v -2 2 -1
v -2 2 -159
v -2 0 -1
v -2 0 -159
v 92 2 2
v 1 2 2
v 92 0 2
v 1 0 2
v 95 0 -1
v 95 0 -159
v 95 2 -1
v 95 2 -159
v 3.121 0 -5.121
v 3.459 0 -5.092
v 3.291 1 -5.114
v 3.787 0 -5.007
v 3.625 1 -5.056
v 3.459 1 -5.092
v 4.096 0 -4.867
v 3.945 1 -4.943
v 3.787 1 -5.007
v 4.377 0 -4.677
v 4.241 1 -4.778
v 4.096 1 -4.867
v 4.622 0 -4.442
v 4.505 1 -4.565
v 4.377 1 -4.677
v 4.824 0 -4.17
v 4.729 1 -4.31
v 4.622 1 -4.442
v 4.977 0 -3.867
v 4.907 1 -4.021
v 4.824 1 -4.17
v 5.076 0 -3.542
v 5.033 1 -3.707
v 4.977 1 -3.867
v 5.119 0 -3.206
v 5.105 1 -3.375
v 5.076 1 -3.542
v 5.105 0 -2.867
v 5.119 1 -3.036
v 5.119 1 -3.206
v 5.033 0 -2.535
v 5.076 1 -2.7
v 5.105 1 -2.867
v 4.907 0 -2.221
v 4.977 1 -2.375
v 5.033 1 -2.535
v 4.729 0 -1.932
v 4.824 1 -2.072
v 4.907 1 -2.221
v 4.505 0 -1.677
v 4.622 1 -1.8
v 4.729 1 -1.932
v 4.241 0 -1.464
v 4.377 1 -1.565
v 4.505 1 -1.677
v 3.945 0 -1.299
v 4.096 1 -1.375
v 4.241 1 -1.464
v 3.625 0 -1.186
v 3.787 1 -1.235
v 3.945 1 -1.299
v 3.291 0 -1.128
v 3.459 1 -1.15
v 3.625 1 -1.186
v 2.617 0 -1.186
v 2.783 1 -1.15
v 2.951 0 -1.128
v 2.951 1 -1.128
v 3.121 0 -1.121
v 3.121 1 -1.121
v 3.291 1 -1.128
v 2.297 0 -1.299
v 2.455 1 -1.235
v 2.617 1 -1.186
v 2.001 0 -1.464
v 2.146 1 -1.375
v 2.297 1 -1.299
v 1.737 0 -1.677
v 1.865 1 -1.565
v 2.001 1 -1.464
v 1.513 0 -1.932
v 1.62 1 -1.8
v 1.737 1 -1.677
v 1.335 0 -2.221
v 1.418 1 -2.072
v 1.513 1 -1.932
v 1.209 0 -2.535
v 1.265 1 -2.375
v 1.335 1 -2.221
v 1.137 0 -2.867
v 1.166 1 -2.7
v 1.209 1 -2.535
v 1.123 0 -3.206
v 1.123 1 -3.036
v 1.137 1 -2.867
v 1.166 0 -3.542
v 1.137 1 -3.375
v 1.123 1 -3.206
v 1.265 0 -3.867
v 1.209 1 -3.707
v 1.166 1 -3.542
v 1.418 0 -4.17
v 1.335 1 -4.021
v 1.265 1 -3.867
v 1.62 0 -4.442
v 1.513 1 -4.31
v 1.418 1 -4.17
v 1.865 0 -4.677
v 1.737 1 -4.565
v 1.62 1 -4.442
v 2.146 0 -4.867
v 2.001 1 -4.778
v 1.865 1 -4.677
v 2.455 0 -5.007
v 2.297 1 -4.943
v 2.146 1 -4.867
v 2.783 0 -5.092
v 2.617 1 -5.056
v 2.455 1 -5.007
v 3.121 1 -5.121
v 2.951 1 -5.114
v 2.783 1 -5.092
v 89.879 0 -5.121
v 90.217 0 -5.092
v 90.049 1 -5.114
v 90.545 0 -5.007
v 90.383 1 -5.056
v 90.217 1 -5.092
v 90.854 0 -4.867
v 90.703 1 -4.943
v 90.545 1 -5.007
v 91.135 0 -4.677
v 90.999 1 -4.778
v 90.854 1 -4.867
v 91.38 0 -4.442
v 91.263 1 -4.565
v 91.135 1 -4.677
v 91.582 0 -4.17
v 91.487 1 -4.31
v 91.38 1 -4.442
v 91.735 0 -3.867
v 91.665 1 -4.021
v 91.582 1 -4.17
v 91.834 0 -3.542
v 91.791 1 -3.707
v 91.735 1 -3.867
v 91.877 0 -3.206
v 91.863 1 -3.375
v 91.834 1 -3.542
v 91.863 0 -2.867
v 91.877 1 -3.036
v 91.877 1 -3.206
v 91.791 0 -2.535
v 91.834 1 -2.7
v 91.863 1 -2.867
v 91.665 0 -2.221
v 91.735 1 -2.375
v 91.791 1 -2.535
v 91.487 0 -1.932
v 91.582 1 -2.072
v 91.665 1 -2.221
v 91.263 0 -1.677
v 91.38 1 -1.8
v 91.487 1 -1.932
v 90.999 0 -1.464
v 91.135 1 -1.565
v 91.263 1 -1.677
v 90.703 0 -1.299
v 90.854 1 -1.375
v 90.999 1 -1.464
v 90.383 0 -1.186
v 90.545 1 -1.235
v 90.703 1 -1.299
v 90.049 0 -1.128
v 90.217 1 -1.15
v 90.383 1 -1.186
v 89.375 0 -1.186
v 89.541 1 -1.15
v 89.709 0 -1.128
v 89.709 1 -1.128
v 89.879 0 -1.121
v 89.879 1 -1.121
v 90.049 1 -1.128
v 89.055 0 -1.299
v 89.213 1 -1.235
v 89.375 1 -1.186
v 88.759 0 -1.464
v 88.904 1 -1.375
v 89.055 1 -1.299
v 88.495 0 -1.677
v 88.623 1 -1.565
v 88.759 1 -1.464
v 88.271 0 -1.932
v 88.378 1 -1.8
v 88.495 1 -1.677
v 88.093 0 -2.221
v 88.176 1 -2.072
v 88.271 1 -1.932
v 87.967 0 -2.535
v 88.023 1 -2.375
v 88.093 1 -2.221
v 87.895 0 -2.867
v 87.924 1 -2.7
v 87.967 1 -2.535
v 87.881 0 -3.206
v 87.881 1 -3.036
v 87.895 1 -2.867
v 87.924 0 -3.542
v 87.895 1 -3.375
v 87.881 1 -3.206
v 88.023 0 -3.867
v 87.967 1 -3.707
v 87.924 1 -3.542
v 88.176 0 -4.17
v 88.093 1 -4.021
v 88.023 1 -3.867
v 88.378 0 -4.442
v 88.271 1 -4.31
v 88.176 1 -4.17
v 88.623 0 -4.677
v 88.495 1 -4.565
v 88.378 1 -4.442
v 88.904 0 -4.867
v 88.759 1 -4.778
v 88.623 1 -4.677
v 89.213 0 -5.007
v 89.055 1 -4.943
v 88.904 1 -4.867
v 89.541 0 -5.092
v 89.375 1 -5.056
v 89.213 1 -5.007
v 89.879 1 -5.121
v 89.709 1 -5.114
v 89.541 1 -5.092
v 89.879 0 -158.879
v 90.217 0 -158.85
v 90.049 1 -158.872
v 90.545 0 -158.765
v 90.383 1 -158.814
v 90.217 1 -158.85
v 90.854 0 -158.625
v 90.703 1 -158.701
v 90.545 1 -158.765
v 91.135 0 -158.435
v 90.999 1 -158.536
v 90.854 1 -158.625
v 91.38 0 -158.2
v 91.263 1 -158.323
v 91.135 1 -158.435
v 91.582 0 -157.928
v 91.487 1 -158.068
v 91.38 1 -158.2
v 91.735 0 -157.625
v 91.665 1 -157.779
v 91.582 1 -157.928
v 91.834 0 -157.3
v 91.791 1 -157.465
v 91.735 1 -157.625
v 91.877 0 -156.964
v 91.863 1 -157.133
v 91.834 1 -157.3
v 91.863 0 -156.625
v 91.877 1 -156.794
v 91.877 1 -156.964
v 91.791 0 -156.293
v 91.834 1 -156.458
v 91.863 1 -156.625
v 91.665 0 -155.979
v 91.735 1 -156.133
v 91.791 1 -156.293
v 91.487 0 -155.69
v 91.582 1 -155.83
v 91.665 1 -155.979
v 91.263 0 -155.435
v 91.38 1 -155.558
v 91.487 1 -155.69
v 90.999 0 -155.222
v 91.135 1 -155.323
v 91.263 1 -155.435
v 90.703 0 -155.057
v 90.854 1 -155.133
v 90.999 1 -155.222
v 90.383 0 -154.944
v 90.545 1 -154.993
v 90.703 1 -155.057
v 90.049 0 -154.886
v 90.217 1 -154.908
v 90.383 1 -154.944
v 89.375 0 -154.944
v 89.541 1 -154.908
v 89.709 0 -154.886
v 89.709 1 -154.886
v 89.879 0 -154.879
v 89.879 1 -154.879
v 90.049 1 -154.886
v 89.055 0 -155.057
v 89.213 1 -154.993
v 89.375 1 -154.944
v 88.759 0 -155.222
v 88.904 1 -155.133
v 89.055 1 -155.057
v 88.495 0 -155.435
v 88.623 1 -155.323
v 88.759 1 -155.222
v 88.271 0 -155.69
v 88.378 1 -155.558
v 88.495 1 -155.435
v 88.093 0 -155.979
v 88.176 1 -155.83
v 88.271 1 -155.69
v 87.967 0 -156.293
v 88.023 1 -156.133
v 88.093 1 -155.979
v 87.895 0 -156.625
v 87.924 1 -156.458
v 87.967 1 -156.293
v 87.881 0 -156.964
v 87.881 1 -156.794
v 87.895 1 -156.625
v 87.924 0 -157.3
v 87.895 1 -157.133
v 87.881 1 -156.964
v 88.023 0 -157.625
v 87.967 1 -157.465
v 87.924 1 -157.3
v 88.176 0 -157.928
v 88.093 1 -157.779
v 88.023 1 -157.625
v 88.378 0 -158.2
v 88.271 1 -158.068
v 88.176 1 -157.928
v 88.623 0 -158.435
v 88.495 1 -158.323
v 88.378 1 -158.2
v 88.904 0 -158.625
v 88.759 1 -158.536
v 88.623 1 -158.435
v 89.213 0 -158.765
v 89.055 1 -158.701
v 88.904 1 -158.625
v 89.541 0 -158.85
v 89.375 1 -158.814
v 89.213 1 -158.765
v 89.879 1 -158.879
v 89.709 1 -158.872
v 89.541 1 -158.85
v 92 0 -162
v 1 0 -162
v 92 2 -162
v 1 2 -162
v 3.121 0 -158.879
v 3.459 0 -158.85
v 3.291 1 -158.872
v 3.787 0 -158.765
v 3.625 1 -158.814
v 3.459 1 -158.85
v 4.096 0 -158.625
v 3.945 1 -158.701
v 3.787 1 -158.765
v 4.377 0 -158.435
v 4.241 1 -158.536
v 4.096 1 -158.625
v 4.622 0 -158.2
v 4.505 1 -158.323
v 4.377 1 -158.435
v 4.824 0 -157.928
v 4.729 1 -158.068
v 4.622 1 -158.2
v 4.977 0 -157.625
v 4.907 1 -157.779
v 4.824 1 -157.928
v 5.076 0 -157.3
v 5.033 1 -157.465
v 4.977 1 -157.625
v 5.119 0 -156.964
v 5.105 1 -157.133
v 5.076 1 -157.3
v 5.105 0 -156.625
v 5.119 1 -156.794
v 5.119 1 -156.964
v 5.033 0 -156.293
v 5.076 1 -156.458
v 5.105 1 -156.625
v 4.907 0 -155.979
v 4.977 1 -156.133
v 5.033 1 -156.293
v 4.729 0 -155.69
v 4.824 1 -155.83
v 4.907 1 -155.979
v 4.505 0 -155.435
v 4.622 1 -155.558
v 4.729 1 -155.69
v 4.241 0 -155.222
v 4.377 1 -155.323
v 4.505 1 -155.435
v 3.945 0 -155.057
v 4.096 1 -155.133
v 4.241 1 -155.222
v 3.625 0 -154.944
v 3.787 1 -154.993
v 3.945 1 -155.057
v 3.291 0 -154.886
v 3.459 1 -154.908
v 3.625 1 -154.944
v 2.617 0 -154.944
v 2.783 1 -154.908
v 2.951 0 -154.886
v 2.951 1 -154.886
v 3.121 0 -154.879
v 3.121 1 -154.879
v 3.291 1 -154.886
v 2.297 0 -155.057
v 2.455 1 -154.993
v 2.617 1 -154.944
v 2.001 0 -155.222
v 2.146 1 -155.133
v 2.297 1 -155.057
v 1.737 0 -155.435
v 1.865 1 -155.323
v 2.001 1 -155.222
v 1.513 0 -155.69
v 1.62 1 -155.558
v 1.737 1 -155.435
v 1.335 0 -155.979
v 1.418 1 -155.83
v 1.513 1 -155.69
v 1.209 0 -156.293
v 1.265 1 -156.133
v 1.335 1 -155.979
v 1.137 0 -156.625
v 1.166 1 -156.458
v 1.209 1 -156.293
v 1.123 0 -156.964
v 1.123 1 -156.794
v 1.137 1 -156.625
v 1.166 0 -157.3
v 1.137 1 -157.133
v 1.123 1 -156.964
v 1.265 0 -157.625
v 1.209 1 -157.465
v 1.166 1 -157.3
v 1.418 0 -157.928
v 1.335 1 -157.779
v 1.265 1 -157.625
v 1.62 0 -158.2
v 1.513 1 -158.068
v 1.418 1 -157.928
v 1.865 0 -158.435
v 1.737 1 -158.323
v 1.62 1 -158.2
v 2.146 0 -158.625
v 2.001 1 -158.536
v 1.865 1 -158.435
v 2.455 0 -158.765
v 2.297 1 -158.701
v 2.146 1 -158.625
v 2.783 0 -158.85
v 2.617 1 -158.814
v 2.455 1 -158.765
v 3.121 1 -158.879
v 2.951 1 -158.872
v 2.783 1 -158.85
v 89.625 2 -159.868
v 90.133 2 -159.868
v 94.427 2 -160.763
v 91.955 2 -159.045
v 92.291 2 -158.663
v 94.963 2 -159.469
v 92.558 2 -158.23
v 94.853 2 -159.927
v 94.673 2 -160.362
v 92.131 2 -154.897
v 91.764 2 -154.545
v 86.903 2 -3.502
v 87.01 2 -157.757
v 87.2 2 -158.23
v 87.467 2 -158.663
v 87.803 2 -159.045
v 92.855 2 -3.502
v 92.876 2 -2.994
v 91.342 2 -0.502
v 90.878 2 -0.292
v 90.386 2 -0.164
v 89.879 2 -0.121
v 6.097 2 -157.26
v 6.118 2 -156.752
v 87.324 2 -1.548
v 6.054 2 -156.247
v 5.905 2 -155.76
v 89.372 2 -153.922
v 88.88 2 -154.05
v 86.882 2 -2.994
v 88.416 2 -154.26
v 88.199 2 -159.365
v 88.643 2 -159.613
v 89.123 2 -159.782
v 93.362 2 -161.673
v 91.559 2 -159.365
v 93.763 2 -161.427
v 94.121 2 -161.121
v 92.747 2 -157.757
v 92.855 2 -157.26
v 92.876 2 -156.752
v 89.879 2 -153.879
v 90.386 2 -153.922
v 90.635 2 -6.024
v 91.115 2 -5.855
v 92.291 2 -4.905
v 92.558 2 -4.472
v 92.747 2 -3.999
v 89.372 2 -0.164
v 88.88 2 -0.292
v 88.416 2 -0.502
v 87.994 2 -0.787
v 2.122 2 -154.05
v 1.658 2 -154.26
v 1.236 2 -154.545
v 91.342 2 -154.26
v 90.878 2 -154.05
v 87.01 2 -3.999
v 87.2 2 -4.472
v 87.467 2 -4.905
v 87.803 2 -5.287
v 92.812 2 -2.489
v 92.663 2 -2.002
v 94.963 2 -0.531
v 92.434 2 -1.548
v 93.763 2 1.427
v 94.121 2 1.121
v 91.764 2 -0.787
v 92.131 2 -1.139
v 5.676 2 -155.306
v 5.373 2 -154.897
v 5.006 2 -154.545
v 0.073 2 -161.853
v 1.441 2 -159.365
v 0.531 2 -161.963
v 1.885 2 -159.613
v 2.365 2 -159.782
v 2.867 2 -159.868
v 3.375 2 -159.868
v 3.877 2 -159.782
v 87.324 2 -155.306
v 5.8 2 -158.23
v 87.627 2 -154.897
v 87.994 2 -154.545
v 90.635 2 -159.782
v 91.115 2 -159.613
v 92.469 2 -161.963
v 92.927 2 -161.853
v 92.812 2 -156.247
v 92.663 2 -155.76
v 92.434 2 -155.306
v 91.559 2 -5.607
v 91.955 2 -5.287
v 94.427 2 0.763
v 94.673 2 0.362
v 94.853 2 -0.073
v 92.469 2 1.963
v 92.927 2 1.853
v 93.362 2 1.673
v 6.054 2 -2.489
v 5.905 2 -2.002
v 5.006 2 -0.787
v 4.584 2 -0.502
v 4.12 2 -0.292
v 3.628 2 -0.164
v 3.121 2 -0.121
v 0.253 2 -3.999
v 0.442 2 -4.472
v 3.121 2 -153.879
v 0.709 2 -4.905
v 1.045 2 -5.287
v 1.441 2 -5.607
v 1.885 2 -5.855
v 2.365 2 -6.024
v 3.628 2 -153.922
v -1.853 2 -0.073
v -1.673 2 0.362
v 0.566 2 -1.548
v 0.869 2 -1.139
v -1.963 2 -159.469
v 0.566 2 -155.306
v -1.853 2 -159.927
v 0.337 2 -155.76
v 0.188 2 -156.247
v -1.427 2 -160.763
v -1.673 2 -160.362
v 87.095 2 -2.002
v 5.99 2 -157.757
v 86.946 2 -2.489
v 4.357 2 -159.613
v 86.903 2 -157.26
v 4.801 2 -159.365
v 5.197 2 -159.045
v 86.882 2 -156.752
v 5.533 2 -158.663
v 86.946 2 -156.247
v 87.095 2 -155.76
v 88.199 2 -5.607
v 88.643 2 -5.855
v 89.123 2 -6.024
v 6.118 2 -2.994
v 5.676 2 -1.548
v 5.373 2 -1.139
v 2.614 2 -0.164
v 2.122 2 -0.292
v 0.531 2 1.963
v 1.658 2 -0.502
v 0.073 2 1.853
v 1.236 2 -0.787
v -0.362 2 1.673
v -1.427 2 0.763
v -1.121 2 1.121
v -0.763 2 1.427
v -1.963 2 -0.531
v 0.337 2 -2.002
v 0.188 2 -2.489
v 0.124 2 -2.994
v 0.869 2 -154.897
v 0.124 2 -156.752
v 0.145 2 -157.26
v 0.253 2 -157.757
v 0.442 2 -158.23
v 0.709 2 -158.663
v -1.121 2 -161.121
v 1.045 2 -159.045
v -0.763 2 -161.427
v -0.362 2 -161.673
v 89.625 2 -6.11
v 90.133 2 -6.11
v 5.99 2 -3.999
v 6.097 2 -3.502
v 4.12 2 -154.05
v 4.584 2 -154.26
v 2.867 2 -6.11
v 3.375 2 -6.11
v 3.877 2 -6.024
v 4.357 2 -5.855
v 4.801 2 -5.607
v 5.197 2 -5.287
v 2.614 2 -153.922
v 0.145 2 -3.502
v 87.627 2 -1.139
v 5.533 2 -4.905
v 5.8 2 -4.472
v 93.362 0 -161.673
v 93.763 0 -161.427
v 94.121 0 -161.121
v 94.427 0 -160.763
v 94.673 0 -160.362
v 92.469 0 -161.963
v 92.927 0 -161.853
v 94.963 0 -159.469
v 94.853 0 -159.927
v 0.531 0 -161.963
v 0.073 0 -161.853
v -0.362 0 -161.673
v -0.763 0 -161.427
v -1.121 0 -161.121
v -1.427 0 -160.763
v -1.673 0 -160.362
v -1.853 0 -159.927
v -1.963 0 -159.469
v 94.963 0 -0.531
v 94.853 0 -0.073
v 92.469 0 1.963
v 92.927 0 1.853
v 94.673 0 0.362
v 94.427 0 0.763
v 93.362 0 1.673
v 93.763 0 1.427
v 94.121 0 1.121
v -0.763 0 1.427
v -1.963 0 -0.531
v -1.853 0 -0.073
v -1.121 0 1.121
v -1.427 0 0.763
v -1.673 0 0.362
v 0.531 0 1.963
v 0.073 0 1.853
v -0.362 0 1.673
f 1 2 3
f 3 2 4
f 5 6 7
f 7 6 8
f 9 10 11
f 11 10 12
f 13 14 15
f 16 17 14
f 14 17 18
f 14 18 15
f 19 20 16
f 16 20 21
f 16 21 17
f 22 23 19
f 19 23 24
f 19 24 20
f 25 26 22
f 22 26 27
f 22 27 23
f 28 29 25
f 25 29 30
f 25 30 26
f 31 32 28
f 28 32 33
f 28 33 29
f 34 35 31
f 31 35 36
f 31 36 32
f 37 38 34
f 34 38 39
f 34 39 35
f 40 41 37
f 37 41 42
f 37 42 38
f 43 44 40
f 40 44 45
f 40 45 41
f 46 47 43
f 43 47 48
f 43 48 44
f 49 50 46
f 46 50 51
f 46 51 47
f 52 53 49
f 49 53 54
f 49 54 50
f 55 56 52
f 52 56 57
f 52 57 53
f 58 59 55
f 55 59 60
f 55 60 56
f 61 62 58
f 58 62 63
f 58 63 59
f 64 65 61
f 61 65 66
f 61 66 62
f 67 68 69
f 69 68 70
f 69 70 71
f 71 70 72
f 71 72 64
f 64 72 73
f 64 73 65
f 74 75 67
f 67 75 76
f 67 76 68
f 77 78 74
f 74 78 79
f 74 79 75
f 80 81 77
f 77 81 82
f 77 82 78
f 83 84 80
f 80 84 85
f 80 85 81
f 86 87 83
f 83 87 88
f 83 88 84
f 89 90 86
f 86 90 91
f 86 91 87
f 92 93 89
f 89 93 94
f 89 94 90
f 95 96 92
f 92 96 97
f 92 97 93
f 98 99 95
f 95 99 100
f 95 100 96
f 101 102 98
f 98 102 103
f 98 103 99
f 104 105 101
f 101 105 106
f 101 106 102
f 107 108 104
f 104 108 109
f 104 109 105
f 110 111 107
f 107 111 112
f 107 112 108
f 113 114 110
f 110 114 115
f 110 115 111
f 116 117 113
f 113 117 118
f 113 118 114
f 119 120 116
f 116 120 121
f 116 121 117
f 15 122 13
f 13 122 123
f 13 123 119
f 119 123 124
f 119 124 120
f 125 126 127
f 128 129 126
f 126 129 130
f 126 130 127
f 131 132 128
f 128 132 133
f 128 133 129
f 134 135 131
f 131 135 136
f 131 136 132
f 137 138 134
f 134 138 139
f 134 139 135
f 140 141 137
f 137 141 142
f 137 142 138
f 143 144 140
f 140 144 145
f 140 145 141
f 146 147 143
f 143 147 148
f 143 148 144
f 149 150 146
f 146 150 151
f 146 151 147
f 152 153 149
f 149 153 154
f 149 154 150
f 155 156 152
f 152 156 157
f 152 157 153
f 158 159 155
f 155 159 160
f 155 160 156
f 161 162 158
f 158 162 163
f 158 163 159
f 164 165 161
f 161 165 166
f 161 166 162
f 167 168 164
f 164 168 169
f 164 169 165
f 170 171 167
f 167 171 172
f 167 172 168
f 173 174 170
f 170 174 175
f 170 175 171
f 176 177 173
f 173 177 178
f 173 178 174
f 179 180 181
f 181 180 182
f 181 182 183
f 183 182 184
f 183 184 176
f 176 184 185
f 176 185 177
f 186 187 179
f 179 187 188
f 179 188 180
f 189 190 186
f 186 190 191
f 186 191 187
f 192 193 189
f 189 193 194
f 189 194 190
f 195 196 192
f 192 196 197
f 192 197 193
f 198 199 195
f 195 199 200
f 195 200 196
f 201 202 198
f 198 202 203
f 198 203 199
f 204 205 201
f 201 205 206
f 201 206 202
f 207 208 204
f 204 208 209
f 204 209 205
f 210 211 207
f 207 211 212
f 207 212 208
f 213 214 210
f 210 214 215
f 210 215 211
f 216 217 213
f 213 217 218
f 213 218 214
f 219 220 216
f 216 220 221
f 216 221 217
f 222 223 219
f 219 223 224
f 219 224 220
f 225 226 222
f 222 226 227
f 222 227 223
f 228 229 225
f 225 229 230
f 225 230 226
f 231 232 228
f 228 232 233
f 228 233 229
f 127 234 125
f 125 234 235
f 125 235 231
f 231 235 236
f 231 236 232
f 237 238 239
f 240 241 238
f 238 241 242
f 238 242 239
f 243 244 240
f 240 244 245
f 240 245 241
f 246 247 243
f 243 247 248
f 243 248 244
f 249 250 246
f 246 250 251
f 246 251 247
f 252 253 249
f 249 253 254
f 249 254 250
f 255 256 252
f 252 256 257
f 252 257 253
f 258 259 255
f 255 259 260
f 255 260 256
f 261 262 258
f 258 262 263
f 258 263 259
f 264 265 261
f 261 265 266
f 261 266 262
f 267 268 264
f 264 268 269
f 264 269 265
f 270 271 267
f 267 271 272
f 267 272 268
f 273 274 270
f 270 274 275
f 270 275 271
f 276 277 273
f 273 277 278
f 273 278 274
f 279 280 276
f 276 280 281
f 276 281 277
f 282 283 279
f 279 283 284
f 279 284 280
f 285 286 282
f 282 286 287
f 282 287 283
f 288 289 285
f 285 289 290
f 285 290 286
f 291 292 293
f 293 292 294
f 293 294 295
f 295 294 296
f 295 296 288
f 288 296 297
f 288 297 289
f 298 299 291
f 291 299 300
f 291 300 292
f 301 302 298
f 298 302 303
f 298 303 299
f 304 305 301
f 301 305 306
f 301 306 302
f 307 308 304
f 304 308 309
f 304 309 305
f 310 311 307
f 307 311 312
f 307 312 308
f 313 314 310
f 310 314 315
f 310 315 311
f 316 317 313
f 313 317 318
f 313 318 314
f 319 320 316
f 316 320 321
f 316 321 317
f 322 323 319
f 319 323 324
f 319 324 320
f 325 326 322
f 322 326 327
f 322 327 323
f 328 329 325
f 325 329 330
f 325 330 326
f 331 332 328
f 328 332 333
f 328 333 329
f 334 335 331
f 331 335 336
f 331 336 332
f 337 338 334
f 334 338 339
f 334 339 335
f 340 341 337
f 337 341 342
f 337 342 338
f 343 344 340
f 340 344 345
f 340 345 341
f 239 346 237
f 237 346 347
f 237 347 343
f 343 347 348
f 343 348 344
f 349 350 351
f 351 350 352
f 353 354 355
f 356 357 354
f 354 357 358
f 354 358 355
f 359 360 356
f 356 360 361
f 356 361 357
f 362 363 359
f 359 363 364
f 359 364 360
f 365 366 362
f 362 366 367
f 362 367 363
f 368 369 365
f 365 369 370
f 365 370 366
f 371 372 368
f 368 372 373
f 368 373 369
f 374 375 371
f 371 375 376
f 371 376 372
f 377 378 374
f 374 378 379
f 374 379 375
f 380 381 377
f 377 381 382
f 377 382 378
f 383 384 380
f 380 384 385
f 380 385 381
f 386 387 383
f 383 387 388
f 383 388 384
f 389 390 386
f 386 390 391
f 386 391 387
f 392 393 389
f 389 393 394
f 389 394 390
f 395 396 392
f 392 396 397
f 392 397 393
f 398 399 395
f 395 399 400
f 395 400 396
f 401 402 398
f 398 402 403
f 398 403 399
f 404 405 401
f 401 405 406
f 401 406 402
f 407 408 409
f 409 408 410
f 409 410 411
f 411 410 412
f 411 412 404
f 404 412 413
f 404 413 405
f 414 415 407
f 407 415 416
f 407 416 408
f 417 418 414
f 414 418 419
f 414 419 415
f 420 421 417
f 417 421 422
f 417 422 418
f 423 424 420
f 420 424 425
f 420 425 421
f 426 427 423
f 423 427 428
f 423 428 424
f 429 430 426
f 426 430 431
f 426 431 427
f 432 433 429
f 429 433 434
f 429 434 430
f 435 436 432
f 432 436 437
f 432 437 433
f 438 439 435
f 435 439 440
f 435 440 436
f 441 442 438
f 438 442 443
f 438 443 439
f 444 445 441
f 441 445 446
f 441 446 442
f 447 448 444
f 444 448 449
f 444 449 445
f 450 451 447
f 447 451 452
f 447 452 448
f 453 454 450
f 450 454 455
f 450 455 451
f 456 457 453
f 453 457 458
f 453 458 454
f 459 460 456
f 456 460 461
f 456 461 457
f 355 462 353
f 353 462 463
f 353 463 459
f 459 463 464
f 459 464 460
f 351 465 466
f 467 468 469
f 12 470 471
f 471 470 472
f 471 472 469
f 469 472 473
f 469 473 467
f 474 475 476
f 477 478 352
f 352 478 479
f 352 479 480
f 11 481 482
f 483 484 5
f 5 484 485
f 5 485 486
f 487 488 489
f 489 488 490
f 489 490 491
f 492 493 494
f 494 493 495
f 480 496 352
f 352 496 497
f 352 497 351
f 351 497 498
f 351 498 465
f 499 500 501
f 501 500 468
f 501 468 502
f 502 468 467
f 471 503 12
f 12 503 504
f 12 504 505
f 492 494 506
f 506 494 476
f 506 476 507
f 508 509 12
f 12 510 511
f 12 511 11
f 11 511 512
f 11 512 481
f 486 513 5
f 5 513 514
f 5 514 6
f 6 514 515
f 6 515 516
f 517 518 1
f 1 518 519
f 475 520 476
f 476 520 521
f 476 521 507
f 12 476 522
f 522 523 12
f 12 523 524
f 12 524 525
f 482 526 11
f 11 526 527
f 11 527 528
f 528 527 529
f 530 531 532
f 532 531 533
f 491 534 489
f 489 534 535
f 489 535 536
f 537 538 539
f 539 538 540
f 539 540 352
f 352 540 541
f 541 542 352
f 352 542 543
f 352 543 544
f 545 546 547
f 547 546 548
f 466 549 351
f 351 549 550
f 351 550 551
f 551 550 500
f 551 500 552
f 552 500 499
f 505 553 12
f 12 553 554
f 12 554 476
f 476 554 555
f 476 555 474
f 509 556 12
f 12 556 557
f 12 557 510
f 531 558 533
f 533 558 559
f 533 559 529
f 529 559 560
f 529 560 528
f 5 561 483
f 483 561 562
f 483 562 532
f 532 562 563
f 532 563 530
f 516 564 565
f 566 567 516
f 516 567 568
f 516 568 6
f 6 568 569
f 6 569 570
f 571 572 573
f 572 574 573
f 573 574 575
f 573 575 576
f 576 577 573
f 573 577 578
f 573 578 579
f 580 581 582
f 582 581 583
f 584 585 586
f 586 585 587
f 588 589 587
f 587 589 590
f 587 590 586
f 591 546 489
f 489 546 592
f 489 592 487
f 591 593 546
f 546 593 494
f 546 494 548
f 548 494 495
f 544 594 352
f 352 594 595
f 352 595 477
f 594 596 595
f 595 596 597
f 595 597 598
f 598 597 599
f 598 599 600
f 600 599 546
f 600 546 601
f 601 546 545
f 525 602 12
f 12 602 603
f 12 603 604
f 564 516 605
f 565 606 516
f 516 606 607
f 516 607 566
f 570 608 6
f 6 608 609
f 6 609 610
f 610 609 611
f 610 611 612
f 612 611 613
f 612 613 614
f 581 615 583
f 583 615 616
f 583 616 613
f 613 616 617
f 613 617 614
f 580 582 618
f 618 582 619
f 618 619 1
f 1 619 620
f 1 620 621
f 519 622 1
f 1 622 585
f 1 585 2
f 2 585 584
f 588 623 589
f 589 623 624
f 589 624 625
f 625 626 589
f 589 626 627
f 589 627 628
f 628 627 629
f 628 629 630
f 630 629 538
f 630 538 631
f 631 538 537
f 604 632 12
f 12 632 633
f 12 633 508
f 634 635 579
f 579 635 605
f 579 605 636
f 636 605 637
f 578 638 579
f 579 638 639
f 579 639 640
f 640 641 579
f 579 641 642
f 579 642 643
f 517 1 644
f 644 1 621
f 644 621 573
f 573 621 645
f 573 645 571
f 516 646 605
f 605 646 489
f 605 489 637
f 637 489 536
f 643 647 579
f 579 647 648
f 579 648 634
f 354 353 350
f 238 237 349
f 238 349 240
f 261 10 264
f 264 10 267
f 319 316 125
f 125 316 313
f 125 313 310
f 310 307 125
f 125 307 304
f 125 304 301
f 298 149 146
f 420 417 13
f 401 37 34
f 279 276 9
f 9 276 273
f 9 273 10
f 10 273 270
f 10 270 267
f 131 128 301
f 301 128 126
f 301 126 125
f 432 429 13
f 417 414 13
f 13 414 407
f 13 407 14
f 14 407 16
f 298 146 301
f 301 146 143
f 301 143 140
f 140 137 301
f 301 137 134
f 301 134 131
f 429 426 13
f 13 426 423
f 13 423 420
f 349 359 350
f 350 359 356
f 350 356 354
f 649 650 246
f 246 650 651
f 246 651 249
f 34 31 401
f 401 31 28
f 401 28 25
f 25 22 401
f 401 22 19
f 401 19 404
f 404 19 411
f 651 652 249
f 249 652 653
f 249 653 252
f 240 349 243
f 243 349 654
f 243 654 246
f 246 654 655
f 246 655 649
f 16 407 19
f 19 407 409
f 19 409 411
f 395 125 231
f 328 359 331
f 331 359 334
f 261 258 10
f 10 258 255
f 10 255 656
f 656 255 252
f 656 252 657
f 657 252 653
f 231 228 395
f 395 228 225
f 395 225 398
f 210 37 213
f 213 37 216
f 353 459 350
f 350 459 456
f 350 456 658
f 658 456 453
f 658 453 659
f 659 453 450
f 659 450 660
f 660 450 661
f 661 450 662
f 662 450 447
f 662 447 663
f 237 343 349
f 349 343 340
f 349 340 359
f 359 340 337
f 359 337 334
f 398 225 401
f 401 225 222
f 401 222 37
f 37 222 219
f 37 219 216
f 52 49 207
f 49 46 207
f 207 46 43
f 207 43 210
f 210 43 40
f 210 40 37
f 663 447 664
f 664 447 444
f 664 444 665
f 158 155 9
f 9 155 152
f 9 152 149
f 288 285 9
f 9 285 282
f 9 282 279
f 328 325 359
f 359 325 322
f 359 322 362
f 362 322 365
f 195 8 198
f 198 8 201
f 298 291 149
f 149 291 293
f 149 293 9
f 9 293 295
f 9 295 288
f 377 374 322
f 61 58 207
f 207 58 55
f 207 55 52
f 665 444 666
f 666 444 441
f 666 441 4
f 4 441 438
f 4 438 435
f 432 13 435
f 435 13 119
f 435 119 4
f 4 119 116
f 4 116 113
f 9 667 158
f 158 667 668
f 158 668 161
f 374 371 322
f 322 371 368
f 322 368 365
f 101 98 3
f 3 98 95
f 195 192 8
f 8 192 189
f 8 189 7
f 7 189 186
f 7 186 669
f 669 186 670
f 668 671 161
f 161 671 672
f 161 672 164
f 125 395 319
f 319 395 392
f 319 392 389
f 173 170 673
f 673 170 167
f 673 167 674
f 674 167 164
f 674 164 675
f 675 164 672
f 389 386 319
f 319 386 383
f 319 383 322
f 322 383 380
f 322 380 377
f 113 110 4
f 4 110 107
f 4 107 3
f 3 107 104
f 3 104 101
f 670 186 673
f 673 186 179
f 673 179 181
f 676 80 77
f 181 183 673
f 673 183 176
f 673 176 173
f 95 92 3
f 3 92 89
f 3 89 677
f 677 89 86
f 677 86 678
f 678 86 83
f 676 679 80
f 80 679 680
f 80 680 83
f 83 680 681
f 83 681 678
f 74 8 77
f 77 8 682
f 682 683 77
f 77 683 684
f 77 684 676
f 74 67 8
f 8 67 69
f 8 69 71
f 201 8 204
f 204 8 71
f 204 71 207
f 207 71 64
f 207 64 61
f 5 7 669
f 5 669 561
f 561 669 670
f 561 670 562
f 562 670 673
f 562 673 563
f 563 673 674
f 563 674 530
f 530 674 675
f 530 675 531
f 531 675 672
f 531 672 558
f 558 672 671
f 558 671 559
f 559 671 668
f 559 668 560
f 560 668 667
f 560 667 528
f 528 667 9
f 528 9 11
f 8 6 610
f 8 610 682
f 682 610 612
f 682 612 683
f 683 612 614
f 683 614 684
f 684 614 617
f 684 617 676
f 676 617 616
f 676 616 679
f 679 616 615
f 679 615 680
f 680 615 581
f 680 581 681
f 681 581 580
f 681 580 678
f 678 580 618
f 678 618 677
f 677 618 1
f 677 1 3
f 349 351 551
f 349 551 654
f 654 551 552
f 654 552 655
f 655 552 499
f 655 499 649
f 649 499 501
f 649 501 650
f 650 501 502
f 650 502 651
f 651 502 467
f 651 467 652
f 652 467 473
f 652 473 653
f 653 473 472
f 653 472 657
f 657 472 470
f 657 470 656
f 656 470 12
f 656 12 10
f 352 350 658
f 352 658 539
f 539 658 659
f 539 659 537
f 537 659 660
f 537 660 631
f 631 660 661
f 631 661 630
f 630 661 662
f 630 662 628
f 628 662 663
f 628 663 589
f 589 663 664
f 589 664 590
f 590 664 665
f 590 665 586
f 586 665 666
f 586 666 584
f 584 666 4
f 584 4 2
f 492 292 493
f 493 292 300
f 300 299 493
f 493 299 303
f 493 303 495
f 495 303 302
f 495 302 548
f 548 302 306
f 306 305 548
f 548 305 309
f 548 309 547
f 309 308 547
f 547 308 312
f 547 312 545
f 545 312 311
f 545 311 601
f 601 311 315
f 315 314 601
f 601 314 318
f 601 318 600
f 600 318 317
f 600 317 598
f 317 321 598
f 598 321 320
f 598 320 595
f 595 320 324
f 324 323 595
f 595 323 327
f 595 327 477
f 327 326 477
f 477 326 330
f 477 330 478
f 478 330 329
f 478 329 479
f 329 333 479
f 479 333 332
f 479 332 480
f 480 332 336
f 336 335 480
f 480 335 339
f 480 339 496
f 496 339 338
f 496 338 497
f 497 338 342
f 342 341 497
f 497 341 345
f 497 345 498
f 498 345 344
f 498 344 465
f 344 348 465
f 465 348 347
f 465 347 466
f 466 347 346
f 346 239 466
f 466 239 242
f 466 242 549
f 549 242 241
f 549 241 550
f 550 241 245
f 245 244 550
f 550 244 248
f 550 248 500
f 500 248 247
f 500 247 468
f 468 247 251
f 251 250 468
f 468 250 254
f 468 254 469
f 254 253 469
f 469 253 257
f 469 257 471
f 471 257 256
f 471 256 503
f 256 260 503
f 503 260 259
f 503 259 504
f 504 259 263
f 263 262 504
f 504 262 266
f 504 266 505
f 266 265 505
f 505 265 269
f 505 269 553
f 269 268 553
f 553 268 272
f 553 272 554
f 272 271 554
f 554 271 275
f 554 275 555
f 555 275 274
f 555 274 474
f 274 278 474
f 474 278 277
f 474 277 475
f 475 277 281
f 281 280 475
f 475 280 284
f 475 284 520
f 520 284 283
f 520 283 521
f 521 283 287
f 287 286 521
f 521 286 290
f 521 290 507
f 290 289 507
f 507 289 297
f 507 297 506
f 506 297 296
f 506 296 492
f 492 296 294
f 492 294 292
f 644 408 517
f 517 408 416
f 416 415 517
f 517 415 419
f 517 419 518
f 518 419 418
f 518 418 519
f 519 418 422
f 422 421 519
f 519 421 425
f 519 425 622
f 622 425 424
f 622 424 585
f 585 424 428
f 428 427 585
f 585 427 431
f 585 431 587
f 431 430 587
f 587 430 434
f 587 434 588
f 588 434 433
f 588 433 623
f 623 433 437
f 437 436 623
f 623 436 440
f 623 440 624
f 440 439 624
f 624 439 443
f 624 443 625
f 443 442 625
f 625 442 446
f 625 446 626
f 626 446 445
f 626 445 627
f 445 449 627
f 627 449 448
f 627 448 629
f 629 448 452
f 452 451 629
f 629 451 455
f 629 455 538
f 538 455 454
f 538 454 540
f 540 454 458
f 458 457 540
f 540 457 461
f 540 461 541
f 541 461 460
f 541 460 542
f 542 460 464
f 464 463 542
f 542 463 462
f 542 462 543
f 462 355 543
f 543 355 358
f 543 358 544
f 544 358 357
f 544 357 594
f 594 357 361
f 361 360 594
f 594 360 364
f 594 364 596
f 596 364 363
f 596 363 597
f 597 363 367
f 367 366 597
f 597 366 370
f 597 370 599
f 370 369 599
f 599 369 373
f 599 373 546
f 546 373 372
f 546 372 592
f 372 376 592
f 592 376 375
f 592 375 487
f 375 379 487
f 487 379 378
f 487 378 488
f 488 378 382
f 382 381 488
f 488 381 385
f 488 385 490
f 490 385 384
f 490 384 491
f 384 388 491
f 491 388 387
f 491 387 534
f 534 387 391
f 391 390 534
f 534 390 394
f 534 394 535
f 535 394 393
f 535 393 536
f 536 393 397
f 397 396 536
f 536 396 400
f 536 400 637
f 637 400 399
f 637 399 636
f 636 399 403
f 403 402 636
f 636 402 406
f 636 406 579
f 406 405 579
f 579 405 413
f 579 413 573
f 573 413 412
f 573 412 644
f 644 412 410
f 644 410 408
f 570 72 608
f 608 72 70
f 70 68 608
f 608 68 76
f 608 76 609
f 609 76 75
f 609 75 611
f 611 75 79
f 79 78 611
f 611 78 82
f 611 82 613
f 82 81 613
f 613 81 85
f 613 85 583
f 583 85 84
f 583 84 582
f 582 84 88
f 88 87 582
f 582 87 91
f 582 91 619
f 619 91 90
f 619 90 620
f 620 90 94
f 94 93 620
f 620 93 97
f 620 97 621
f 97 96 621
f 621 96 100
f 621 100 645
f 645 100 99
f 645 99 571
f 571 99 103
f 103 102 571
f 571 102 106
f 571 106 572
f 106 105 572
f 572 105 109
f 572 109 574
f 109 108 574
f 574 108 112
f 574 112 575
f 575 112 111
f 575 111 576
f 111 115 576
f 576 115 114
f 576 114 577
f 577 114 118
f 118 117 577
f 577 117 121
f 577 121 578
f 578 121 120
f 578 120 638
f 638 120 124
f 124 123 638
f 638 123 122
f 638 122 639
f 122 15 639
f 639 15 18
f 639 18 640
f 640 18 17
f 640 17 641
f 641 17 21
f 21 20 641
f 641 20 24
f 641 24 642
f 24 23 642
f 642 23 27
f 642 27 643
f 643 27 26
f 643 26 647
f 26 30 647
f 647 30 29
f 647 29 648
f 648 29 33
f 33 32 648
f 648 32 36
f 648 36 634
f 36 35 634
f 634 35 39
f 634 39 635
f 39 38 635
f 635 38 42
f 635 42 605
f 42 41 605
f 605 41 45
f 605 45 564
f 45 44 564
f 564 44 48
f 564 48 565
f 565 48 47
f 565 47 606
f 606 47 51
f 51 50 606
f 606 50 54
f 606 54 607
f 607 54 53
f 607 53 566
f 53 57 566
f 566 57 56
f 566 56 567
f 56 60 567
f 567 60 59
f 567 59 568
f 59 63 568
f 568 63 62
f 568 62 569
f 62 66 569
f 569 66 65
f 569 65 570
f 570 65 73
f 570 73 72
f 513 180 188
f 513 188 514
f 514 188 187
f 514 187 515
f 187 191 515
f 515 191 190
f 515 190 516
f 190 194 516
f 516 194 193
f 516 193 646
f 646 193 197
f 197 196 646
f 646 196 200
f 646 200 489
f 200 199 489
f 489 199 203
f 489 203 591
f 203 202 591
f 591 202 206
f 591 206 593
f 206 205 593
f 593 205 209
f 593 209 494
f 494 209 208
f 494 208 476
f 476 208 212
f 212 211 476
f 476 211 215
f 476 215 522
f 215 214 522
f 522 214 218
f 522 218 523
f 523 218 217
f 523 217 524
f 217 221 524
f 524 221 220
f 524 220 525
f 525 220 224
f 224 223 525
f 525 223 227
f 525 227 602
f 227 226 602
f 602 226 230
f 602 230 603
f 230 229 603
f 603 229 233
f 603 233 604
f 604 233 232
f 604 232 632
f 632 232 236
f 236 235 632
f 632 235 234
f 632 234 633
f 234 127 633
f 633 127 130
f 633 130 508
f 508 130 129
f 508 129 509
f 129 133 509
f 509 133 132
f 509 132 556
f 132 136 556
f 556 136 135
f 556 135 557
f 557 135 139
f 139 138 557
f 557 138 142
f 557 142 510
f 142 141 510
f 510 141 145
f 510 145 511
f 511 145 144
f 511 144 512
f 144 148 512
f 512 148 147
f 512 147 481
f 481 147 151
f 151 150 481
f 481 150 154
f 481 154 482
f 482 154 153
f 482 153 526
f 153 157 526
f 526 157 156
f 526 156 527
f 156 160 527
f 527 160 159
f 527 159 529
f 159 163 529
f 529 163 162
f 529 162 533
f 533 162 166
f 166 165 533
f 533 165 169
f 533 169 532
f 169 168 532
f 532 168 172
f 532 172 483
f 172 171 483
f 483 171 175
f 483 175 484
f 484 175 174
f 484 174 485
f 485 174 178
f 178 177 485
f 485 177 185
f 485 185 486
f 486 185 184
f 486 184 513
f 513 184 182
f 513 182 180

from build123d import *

# Parameters (mm, degrees)
SKETCH2_R           = 2
BOSS_EXTRUDE1_DEPTH = 2
FILLET13_R          = 3
CHAMFER1_SIZE       = 1


with BuildPart() as part:
    # Sketch2 → Boss-Extrude1 (new body)
    # profile 1 of 2: a face of its own
    with BuildSketch(Plane(origin=(0, 0, 0), x_dir=(1, 0, 0), z_dir=(0, 1, 0))):
        Polygon((-2, -2), (-2, 37.5), (-2, 137.5), (-2, 162), (95, 162), (95, -2), align=None)
        Polygon((0, 137.5), (0, 160), (93, 160), (93, 0), (0, 0), (0, 37.5), align=None, mode=Mode.SUBTRACT)
    # profile 2 of 2: a face of its own
    with BuildSketch(Plane(origin=(0, 0, 0), x_dir=(1, 0, 0), z_dir=(0, 1, 0))):
        Polygon((0, 160), (93, 160), (93, 0), (0, 0), (0, 37.5), (0, 137.5), align=None)
        with Locations(Location((89.87897445, 156.87897445, 0), (0, 0, 270))):
            Circle(SKETCH2_R, mode=Mode.SUBTRACT)
        with Locations(Location((89.87897445, 3.12102555, 0), (0, 0, 270))):
            Circle(SKETCH2_R, mode=Mode.SUBTRACT)
        with Locations(Location((3.12102555, 3.12102555, 0), (0, 0, 270))):
            Circle(SKETCH2_R, mode=Mode.SUBTRACT)
        with Locations(Location((3.12102555, 156.87897445, 0), (0, 0, 270))):
            Circle(SKETCH2_R, mode=Mode.SUBTRACT)
    extrude(amount=BOSS_EXTRUDE1_DEPTH)

    # Fillet13
    fillet13_edges = [part.edges().sort_by_distance(p)[0] for p in [
        (-2, 1, -162),
        (95, 1, -162),
        (95, 1, 2),
        (-2, 1, 2),
    ]]
    fillet(fillet13_edges, radius=FILLET13_R)

    # Chamfer1
    chamfer1_edges = [part.edges().sort_by_distance(p)[0] for p in [
        (89.87897445, 2, -158.87897445),
        (89.87897445, 2, -5.12102555),
        (3.12102555, 2, -5.12102555),
        (3.12102555, 2, -158.87897445),
    ]]
    chamfer(chamfer1_edges, length=CHAMFER1_SIZE)


solid = part.part
